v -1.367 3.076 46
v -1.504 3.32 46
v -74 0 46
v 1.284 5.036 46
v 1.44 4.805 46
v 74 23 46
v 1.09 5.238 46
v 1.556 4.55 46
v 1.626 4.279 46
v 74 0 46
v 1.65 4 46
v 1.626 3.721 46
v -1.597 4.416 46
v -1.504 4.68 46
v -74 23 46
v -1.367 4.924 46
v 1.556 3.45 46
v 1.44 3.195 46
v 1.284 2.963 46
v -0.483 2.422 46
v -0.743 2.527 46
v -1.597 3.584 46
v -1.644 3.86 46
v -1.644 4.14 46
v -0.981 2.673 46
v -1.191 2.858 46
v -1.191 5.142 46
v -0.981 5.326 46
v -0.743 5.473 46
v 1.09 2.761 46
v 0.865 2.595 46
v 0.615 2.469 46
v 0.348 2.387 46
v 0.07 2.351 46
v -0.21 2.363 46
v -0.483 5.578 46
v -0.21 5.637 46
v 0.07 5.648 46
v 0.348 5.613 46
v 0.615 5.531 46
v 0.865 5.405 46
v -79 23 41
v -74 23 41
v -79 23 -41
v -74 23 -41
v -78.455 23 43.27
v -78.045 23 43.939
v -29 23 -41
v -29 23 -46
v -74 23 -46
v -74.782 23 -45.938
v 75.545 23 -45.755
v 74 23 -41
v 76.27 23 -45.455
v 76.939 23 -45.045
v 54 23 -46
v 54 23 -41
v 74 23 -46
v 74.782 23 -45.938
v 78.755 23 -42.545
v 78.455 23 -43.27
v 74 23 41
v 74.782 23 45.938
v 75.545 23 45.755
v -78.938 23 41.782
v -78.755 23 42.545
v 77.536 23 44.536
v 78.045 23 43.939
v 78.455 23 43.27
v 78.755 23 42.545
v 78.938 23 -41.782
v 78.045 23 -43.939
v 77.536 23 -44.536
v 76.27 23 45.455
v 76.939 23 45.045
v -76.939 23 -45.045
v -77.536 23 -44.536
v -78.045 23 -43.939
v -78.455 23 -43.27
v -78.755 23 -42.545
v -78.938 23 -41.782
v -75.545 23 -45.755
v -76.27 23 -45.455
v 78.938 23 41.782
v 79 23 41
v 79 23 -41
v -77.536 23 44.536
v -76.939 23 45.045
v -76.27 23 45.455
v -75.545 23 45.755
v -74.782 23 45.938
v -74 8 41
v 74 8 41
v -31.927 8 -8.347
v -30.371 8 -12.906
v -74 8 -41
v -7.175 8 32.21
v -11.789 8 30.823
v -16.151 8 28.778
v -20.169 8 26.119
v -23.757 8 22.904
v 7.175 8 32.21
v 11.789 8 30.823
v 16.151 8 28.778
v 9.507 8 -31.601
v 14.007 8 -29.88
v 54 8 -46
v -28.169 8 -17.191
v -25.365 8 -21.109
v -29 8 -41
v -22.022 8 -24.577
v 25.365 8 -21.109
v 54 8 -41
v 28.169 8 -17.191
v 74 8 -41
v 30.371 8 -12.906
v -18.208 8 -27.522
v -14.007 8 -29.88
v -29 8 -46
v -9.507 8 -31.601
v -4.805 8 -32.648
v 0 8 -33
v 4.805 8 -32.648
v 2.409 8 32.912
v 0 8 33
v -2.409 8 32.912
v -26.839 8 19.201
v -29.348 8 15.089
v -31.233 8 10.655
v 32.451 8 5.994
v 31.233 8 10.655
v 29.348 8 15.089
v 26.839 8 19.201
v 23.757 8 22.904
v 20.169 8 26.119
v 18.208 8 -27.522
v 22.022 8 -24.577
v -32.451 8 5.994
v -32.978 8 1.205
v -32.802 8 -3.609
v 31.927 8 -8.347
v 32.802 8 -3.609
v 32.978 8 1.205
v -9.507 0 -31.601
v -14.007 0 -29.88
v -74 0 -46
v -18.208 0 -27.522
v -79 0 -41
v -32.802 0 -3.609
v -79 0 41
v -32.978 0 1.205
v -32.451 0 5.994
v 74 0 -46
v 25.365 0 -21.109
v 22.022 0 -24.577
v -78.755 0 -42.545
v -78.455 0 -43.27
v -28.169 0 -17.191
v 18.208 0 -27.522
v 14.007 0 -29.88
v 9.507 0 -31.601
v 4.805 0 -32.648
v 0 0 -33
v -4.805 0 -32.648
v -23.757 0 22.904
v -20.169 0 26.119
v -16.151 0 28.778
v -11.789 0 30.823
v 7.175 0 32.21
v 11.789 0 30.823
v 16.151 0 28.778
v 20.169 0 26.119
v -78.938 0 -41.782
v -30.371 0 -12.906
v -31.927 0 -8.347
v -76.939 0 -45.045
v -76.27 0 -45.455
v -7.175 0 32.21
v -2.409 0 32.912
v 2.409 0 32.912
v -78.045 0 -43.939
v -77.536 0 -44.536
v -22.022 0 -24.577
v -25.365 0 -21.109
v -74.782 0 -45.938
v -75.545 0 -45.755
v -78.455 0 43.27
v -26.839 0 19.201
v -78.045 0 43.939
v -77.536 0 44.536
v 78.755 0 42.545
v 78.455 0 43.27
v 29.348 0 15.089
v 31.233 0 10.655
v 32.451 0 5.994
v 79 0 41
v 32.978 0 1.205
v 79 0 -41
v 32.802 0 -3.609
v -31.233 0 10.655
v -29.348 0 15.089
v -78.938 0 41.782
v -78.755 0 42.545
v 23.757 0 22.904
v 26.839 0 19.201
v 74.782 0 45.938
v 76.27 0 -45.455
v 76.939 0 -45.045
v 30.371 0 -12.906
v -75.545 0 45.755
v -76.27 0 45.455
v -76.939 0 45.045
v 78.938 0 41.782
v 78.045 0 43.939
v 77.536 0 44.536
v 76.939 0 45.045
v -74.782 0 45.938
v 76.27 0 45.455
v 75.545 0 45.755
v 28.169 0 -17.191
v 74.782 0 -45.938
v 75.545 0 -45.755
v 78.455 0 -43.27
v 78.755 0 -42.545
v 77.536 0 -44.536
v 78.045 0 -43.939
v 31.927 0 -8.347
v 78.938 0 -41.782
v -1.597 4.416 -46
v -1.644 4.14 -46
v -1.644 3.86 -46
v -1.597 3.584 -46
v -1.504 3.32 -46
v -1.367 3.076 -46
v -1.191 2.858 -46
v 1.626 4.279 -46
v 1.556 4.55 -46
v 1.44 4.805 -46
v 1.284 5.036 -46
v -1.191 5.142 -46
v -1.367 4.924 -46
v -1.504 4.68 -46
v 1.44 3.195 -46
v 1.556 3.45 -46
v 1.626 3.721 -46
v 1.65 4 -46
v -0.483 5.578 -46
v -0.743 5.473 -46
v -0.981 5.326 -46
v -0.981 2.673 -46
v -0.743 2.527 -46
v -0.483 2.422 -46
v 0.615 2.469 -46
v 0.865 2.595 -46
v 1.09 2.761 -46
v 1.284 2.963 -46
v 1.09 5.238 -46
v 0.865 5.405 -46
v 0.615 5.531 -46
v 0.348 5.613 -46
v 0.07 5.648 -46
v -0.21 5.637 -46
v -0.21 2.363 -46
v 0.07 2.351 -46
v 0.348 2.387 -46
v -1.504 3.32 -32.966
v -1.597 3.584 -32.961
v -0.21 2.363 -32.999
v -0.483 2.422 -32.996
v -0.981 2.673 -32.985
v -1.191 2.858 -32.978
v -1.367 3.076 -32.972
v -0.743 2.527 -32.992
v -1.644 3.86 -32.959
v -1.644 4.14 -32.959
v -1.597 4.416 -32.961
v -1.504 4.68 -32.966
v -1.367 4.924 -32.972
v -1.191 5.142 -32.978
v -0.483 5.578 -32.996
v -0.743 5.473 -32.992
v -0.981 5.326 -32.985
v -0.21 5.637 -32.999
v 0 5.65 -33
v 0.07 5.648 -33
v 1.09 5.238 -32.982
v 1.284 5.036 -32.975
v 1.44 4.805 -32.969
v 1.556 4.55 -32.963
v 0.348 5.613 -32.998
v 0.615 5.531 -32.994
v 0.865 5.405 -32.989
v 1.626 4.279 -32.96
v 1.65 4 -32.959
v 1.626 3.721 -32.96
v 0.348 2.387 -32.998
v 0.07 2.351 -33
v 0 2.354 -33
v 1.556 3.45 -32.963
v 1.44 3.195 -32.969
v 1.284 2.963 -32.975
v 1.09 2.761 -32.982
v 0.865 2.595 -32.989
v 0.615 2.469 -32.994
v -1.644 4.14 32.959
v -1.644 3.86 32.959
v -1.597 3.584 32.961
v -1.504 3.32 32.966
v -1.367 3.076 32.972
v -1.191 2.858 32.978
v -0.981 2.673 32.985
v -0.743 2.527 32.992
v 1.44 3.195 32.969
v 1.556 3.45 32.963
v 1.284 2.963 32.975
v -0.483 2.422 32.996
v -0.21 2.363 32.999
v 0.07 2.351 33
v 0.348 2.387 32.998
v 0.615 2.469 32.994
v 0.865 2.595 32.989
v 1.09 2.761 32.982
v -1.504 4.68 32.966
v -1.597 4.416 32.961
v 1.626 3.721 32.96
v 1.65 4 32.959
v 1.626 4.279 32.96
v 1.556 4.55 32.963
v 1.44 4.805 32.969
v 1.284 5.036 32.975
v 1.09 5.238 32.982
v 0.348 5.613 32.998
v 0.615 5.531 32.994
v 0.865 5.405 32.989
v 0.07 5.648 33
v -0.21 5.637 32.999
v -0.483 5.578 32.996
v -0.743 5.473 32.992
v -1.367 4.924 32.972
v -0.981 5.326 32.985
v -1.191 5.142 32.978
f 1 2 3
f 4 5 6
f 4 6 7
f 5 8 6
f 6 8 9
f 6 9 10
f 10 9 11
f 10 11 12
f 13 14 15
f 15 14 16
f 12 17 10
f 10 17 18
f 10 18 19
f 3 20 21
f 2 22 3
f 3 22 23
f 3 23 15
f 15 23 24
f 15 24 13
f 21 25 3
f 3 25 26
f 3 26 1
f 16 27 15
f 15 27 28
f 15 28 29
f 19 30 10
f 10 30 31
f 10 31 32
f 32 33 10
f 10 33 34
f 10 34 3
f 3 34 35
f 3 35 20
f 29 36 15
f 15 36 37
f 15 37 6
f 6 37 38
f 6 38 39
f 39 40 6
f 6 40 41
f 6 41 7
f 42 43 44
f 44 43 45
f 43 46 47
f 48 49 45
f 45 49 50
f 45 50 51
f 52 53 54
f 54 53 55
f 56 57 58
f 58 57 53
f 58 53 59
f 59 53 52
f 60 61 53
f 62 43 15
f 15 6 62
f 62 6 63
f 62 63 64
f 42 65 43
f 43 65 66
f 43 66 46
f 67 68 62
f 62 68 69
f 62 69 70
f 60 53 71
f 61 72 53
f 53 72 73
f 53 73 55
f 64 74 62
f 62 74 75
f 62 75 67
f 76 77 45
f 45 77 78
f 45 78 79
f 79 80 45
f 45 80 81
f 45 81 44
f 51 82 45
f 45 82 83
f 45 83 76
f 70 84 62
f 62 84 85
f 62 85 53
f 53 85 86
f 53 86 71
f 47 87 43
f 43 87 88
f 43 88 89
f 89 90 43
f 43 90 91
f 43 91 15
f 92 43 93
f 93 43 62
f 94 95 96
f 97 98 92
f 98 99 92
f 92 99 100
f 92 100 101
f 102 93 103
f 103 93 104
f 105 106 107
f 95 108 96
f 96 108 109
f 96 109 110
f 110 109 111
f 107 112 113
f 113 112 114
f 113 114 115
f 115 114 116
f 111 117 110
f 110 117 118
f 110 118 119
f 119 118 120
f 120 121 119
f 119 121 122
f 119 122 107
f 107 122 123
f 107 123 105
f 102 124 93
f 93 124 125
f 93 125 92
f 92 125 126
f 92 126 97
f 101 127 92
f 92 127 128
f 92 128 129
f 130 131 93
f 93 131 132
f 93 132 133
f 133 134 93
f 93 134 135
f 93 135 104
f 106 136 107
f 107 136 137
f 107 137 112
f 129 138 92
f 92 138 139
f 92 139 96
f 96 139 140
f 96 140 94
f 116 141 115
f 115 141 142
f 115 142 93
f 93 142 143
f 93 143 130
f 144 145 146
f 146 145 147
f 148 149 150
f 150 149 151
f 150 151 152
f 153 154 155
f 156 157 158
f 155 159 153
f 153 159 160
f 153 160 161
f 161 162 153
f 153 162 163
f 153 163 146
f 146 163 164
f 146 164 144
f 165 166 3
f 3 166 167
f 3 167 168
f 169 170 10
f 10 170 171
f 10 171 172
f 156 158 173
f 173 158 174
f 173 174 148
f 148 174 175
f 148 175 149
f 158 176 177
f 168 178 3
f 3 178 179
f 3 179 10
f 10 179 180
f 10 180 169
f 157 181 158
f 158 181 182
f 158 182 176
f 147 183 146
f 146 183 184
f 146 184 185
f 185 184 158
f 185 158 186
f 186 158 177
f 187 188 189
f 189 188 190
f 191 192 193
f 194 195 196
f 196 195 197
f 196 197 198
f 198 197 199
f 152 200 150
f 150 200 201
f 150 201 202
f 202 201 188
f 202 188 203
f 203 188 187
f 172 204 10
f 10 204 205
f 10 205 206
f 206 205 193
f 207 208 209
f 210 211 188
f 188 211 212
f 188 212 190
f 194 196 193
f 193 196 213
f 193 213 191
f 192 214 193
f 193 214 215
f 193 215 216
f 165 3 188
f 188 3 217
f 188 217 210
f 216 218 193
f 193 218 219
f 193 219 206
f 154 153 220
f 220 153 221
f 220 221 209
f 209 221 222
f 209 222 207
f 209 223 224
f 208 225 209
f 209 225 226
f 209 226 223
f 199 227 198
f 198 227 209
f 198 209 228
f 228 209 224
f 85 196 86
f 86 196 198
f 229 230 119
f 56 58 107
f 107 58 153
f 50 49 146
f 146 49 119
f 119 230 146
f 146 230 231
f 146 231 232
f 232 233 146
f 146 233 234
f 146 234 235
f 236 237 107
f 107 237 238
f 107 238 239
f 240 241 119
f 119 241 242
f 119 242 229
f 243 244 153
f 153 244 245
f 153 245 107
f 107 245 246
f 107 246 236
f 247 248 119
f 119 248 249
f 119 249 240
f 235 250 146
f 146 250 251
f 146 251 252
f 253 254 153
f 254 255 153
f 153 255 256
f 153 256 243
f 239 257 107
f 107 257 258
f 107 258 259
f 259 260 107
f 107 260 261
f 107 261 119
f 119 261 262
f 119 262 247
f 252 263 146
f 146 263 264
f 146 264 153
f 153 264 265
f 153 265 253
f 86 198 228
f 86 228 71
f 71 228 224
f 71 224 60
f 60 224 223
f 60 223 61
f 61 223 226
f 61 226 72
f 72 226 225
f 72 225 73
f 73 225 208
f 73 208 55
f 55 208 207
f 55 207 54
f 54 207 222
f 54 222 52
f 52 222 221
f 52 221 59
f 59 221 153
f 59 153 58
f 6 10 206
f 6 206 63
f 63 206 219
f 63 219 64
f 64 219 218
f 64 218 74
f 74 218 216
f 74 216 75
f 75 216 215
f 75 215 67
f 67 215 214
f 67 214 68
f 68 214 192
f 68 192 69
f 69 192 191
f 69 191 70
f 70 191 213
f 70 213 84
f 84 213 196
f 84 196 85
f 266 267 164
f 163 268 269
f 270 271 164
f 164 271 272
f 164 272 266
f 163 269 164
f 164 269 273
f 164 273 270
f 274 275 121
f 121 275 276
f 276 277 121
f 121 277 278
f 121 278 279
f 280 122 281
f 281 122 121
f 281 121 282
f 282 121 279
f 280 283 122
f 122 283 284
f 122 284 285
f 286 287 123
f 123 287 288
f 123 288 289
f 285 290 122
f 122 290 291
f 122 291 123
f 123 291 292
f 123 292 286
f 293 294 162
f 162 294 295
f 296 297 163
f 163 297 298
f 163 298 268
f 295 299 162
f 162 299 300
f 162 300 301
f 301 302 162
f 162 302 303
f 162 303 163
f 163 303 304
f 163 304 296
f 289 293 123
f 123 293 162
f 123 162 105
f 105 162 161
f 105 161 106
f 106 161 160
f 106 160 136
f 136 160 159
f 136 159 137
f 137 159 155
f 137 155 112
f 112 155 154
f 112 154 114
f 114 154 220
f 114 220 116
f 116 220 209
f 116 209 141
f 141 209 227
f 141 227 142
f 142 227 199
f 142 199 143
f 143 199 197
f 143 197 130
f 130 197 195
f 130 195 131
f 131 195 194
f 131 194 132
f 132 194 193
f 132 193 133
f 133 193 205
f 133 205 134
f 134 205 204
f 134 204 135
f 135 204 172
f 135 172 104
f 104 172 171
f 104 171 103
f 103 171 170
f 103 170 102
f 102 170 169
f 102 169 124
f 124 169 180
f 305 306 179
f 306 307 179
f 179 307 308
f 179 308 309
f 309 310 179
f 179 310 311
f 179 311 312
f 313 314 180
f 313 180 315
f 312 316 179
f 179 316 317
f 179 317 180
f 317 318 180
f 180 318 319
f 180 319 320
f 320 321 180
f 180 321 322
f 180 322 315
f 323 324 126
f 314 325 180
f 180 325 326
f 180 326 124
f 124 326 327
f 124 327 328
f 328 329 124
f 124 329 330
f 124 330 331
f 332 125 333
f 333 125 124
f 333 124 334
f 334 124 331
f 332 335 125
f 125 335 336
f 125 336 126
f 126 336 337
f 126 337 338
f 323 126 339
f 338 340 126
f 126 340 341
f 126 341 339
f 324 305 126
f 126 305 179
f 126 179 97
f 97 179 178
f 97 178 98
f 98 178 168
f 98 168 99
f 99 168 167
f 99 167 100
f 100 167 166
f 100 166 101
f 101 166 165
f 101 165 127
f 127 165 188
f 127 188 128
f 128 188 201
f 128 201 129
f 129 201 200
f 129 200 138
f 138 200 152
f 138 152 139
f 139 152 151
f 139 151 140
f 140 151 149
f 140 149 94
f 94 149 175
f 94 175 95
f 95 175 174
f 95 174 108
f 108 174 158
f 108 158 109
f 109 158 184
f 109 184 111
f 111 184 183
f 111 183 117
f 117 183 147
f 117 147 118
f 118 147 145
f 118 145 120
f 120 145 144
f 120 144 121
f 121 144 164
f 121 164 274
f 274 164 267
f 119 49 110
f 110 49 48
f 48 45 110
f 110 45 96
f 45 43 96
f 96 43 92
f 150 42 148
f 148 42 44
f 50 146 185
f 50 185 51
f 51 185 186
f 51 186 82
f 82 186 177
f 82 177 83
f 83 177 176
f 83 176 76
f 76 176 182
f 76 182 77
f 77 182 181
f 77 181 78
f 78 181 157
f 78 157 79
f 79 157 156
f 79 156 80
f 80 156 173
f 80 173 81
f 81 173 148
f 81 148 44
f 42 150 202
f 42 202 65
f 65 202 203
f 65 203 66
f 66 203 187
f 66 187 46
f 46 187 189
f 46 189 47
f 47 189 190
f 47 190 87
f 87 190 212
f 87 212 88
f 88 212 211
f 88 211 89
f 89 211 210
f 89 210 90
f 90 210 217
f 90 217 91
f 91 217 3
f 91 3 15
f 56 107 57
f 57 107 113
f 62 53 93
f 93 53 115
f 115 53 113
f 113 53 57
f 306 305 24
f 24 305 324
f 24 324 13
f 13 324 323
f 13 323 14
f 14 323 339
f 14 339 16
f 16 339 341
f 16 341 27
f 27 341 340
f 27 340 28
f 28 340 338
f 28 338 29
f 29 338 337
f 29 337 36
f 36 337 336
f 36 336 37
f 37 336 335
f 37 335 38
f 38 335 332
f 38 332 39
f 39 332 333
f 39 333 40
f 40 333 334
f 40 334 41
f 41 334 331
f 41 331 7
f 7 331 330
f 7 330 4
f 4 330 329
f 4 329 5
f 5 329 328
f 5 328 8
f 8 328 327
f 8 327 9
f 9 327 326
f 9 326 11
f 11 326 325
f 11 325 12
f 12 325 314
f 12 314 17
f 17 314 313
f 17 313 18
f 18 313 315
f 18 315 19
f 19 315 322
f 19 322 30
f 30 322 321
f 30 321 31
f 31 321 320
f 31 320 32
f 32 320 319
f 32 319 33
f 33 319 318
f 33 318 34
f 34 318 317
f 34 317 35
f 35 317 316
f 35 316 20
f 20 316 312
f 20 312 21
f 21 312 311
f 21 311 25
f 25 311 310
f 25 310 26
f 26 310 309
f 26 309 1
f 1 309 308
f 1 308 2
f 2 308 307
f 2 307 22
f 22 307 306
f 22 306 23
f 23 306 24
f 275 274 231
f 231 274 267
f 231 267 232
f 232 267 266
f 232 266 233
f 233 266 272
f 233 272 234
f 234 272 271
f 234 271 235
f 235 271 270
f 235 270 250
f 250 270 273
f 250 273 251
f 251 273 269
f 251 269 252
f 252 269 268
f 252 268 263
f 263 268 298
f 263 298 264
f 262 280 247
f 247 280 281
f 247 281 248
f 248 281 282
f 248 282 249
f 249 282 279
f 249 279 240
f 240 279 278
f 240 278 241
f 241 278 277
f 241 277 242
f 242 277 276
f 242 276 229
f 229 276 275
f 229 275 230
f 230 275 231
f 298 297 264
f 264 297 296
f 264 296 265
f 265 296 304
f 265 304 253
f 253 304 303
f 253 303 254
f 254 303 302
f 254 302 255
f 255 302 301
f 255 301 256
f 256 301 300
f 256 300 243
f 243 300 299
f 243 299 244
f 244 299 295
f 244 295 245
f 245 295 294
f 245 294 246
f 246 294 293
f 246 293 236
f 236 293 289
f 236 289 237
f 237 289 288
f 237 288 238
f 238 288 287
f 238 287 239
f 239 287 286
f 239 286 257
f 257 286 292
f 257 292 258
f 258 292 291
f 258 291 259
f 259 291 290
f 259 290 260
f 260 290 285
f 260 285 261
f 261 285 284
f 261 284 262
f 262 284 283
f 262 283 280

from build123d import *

# Parameters (mm, degrees)
SKETCH1_W             = 158
SKETCH1_H             = 92
BOSS_EXTRUDE1_DEPTH   = 8
SKETCH2_W             = 158
SKETCH2_H             = 92
SKETCH2_W_2           = 148
SKETCH2_H_2           = 82
BOSS_EXTRUDE2_DEPTH   = 15
SKETCH3_R             = 33
CUT_EXTRUDE1_DEPTH    = 95.265582266
FILLET1_R             = 5
FILLET2_R             = 5
SPLIT1_START          = -29
SPLIT1_OUTLINE_W      = 15
SPLIT1_OUTLINE_H      = 5
SPLIT1_DEPTH          = 83
M4X0_7_TAPPED_HOLE1_D = 3.3


# Read off the part's stored shape, not the designer's step: Split1
with BuildPart() as part:
    # Sketch1 → Boss-Extrude1 (new body)
    with BuildSketch(Plane(origin=(0, 0, 0), x_dir=(1, 0, 0), z_dir=(0, 1, 0))):
        Rectangle(SKETCH1_W, SKETCH1_H)
    extrude(amount=BOSS_EXTRUDE1_DEPTH)

    # Sketch2 → Boss-Extrude2 (add)
    with BuildSketch(Plane(origin=(0, 8, 0), x_dir=(1, 0, 0), z_dir=(0, 1, 0))):
        Rectangle(SKETCH2_W, SKETCH2_H)
        Rectangle(SKETCH2_W_2, SKETCH2_H_2, mode=Mode.SUBTRACT)
    extrude(amount=BOSS_EXTRUDE2_DEPTH)

    # Sketch3 → Cut-Extrude1 (cut, through all)
    with BuildSketch(Plane.XZ):
        with Locations(Location((0, 0, 0), (0, 0, 270))):
            Circle(SKETCH3_R)
    extrude(amount=-CUT_EXTRUDE1_DEPTH, mode=Mode.SUBTRACT)

    # Fillet1
    fillet1_edges = [part.edges().sort_by_distance(p)[0] for p in [
        (-79, 11.5, 46),
    ]]
    fillet(fillet1_edges, radius=FILLET1_R)

    # Fillet2
    fillet2_edges = [part.edges().sort_by_distance(p)[0] for p in [
        (79, 11.5, 46),
        (-79, 11.5, -46),
        (79, 11.5, -46),
    ]]
    fillet(fillet2_edges, radius=FILLET2_R)

    # Split1 outline → Split1 (cut)
    with BuildSketch(Plane.YZ.offset(SPLIT1_START)):
        with Locations((15.5, -43.5)):
            Rectangle(SPLIT1_OUTLINE_W, SPLIT1_OUTLINE_H)
    extrude(amount=SPLIT1_DEPTH, mode=Mode.SUBTRACT)

    # M4x0.7 Tapped Hole1 (through all)
    with Locations(Plane.XY.offset(46)):
        with Locations((0, 4)):
            Hole(M4X0_7_TAPPED_HOLE1_D / 2)


solid = part.part
